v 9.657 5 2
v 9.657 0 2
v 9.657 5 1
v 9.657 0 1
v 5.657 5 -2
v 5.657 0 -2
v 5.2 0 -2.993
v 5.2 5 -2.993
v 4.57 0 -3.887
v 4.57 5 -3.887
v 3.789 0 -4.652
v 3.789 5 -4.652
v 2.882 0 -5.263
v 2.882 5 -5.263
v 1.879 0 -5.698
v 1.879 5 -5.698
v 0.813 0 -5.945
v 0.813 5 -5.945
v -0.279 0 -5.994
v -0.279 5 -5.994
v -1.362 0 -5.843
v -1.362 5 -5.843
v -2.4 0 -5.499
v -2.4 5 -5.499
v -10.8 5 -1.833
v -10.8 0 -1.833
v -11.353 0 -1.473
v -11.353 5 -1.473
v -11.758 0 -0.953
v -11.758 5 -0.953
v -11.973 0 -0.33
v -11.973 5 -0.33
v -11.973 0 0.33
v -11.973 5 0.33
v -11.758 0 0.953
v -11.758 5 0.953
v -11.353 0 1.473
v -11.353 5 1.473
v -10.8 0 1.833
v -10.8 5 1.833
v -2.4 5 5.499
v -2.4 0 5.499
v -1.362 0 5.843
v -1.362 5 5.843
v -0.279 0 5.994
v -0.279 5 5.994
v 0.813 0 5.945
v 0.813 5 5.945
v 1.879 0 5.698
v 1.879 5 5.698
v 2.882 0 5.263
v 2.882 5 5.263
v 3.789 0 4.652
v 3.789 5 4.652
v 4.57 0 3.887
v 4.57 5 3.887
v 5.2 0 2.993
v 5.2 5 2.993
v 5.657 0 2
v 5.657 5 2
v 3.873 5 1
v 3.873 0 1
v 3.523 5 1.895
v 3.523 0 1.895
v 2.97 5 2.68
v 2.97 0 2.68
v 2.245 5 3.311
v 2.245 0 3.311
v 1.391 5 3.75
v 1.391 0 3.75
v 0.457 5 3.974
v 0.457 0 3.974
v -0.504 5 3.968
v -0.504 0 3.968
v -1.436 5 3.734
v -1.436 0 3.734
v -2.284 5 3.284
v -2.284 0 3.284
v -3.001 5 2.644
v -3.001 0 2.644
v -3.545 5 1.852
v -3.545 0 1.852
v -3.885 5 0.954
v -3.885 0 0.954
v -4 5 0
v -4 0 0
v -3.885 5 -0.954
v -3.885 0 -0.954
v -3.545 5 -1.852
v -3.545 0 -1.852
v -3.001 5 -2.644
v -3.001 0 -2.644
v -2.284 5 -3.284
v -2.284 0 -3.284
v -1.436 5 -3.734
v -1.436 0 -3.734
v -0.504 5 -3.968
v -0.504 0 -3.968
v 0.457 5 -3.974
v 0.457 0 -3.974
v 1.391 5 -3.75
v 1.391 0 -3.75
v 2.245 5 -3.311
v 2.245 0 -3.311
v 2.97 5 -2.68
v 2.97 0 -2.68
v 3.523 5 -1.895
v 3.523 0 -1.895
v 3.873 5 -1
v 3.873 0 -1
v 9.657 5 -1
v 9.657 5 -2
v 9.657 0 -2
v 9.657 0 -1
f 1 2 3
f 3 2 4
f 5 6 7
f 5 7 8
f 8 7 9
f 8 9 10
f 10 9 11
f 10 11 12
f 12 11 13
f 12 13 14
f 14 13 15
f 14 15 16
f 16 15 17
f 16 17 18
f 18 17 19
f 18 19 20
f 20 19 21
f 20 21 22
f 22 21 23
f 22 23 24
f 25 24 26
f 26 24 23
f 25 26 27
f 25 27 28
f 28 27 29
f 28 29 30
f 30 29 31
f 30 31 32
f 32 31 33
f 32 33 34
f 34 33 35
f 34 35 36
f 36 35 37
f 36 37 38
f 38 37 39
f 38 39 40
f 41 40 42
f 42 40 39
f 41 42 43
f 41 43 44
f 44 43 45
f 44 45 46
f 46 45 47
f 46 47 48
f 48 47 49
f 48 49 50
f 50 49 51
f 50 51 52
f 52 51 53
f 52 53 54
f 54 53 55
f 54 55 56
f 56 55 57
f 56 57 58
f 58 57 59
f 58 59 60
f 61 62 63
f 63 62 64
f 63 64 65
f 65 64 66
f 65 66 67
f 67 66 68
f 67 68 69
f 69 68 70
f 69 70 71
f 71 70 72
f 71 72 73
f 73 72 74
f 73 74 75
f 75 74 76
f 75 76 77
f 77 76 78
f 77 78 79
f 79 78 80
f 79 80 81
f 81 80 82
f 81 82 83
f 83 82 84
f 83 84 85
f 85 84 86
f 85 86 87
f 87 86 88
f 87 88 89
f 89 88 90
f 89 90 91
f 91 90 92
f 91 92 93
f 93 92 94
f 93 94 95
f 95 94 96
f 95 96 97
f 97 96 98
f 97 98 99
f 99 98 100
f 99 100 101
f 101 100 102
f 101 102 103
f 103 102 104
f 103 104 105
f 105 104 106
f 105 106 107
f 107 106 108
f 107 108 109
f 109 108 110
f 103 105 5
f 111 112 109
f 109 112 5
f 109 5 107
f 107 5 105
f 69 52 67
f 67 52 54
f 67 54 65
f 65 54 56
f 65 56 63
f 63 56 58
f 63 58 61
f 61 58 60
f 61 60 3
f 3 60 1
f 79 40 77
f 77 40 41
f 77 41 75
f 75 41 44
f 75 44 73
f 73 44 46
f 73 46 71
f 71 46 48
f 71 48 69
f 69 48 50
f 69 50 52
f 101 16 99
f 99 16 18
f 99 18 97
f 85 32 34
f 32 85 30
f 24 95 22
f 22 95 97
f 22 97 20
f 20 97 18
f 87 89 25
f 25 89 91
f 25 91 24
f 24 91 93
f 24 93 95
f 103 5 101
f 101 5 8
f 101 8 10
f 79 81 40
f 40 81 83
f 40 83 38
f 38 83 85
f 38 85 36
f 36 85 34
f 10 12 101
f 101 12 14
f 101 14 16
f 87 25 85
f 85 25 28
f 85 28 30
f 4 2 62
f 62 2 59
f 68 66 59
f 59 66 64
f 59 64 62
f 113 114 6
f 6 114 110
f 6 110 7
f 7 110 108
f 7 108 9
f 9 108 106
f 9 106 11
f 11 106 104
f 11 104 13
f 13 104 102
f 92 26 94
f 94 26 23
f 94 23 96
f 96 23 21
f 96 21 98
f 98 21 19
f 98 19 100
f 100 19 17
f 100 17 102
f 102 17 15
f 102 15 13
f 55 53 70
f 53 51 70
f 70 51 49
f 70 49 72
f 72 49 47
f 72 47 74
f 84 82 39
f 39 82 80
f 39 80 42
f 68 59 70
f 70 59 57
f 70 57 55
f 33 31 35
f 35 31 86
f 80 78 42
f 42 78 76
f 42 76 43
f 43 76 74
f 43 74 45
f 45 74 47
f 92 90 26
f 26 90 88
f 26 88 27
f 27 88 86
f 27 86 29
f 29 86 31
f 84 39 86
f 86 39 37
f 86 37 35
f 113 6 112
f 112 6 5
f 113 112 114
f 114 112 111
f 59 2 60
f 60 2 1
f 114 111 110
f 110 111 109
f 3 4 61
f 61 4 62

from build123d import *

# Parameters (mm, degrees)
RESSALTO_EXTRUS_O1_DEPTH = 5
ESBO_O3_W                = 4
ESBO_O3_H                = 4
RESSALTO_EXTRUS_O2_DEPTH = 5
ESBO_O5_W                = 9.102985385
ESBO_O5_H                = 2
CORTE_EXTRUS_O1_DEPTH    = 5


with BuildPart() as part:
    # Esboço2 → Ressalto-extrusão1 (new body)
    with BuildSketch(Plane(origin=(0, 0, 0), x_dir=(1, 0, 0), z_dir=(0, 1, 0))):
        with BuildLine():
            ThreePointArc((-2.4, -5.499090834), (3.286335345, -5.019960159), (6, 0))
            Line((6, 0), (4, 0))
            ThreePointArc((4, 0), (0, -4), (-4, 0))
            Line((-4, 0), (-6, 0))
            ThreePointArc((-6, 0), (-5.019960159, -3.286335345), (-2.4, -5.499090834))
        make_face()
        with BuildLine():
            Line((4, 0), (6, 0))
            ThreePointArc((6, 0), (3.286335345, 5.019960159), (-2.4, 5.499090834))
            ThreePointArc((-2.4, 5.499090834), (-5.019960159, 3.286335345), (-6, 0))
            Line((-6, 0), (-4, 0))
            ThreePointArc((-4, 0), (0, 4), (4, 0))
        make_face()
        with BuildLine():
            Line((-10.8, -1.833030278), (-2.4, -5.499090834))
            ThreePointArc((-2.4, -5.499090834), (-5.019960159, -3.286335345), (-6, 0))
            Line((-6, 0), (-8, 0))
            ThreePointArc((-8, 0), (-8.904554885, -1.673320053), (-10.8, -1.833030278))
        make_face()
        with BuildLine():
            ThreePointArc((-6, 0), (-5.019960159, 3.286335345), (-2.4, 5.499090834))
            Line((-2.4, 5.499090834), (-10.8, 1.833030278))
            ThreePointArc((-10.8, 1.833030278), (-8.904554885, 1.673320053), (-8, 0))
            Line((-8, 0), (-6, 0))
        make_face()
        with BuildLine():
            ThreePointArc((-8, 0), (-8.904554885, 1.673320053), (-10.8, 1.833030278))
            ThreePointArc((-10.8, 1.833030278), (-11.673320053, 1.095445115), (-12, 0))
            Line((-12, 0), (-8, 0))
        make_face()
        with BuildLine():
            ThreePointArc((-12, 0), (-11.673320053, -1.095445115), (-10.8, -1.833030278))
            ThreePointArc((-10.8, -1.833030278), (-8.904554885, -1.673320053), (-8, 0))
            Line((-8, 0), (-12, 0))
        make_face()
    extrude(amount=RESSALTO_EXTRUS_O1_DEPTH)

    # Esboço3 → Ressalto-extrusão2 (add, through all)
    with BuildSketch(Plane(origin=(0, 5, 0), x_dir=(1, 0, 0), z_dir=(0, 1, 0))):
        with Locations((7.656854249, 0)):
            Rectangle(ESBO_O3_W, ESBO_O3_H)
    extrude(amount=-RESSALTO_EXTRUS_O2_DEPTH)

    # Esboço5 → Corte-extrusão1 (cut)
    with BuildSketch(Plane(origin=(0, 5, 0), x_dir=(1, 0, 0), z_dir=(0, 1, 0))):
        with Locations((6.873009698, 0)):
            Rectangle(ESBO_O5_W, ESBO_O5_H)
    extrude(amount=-CORTE_EXTRUS_O1_DEPTH, mode=Mode.SUBTRACT)


solid = part.part
